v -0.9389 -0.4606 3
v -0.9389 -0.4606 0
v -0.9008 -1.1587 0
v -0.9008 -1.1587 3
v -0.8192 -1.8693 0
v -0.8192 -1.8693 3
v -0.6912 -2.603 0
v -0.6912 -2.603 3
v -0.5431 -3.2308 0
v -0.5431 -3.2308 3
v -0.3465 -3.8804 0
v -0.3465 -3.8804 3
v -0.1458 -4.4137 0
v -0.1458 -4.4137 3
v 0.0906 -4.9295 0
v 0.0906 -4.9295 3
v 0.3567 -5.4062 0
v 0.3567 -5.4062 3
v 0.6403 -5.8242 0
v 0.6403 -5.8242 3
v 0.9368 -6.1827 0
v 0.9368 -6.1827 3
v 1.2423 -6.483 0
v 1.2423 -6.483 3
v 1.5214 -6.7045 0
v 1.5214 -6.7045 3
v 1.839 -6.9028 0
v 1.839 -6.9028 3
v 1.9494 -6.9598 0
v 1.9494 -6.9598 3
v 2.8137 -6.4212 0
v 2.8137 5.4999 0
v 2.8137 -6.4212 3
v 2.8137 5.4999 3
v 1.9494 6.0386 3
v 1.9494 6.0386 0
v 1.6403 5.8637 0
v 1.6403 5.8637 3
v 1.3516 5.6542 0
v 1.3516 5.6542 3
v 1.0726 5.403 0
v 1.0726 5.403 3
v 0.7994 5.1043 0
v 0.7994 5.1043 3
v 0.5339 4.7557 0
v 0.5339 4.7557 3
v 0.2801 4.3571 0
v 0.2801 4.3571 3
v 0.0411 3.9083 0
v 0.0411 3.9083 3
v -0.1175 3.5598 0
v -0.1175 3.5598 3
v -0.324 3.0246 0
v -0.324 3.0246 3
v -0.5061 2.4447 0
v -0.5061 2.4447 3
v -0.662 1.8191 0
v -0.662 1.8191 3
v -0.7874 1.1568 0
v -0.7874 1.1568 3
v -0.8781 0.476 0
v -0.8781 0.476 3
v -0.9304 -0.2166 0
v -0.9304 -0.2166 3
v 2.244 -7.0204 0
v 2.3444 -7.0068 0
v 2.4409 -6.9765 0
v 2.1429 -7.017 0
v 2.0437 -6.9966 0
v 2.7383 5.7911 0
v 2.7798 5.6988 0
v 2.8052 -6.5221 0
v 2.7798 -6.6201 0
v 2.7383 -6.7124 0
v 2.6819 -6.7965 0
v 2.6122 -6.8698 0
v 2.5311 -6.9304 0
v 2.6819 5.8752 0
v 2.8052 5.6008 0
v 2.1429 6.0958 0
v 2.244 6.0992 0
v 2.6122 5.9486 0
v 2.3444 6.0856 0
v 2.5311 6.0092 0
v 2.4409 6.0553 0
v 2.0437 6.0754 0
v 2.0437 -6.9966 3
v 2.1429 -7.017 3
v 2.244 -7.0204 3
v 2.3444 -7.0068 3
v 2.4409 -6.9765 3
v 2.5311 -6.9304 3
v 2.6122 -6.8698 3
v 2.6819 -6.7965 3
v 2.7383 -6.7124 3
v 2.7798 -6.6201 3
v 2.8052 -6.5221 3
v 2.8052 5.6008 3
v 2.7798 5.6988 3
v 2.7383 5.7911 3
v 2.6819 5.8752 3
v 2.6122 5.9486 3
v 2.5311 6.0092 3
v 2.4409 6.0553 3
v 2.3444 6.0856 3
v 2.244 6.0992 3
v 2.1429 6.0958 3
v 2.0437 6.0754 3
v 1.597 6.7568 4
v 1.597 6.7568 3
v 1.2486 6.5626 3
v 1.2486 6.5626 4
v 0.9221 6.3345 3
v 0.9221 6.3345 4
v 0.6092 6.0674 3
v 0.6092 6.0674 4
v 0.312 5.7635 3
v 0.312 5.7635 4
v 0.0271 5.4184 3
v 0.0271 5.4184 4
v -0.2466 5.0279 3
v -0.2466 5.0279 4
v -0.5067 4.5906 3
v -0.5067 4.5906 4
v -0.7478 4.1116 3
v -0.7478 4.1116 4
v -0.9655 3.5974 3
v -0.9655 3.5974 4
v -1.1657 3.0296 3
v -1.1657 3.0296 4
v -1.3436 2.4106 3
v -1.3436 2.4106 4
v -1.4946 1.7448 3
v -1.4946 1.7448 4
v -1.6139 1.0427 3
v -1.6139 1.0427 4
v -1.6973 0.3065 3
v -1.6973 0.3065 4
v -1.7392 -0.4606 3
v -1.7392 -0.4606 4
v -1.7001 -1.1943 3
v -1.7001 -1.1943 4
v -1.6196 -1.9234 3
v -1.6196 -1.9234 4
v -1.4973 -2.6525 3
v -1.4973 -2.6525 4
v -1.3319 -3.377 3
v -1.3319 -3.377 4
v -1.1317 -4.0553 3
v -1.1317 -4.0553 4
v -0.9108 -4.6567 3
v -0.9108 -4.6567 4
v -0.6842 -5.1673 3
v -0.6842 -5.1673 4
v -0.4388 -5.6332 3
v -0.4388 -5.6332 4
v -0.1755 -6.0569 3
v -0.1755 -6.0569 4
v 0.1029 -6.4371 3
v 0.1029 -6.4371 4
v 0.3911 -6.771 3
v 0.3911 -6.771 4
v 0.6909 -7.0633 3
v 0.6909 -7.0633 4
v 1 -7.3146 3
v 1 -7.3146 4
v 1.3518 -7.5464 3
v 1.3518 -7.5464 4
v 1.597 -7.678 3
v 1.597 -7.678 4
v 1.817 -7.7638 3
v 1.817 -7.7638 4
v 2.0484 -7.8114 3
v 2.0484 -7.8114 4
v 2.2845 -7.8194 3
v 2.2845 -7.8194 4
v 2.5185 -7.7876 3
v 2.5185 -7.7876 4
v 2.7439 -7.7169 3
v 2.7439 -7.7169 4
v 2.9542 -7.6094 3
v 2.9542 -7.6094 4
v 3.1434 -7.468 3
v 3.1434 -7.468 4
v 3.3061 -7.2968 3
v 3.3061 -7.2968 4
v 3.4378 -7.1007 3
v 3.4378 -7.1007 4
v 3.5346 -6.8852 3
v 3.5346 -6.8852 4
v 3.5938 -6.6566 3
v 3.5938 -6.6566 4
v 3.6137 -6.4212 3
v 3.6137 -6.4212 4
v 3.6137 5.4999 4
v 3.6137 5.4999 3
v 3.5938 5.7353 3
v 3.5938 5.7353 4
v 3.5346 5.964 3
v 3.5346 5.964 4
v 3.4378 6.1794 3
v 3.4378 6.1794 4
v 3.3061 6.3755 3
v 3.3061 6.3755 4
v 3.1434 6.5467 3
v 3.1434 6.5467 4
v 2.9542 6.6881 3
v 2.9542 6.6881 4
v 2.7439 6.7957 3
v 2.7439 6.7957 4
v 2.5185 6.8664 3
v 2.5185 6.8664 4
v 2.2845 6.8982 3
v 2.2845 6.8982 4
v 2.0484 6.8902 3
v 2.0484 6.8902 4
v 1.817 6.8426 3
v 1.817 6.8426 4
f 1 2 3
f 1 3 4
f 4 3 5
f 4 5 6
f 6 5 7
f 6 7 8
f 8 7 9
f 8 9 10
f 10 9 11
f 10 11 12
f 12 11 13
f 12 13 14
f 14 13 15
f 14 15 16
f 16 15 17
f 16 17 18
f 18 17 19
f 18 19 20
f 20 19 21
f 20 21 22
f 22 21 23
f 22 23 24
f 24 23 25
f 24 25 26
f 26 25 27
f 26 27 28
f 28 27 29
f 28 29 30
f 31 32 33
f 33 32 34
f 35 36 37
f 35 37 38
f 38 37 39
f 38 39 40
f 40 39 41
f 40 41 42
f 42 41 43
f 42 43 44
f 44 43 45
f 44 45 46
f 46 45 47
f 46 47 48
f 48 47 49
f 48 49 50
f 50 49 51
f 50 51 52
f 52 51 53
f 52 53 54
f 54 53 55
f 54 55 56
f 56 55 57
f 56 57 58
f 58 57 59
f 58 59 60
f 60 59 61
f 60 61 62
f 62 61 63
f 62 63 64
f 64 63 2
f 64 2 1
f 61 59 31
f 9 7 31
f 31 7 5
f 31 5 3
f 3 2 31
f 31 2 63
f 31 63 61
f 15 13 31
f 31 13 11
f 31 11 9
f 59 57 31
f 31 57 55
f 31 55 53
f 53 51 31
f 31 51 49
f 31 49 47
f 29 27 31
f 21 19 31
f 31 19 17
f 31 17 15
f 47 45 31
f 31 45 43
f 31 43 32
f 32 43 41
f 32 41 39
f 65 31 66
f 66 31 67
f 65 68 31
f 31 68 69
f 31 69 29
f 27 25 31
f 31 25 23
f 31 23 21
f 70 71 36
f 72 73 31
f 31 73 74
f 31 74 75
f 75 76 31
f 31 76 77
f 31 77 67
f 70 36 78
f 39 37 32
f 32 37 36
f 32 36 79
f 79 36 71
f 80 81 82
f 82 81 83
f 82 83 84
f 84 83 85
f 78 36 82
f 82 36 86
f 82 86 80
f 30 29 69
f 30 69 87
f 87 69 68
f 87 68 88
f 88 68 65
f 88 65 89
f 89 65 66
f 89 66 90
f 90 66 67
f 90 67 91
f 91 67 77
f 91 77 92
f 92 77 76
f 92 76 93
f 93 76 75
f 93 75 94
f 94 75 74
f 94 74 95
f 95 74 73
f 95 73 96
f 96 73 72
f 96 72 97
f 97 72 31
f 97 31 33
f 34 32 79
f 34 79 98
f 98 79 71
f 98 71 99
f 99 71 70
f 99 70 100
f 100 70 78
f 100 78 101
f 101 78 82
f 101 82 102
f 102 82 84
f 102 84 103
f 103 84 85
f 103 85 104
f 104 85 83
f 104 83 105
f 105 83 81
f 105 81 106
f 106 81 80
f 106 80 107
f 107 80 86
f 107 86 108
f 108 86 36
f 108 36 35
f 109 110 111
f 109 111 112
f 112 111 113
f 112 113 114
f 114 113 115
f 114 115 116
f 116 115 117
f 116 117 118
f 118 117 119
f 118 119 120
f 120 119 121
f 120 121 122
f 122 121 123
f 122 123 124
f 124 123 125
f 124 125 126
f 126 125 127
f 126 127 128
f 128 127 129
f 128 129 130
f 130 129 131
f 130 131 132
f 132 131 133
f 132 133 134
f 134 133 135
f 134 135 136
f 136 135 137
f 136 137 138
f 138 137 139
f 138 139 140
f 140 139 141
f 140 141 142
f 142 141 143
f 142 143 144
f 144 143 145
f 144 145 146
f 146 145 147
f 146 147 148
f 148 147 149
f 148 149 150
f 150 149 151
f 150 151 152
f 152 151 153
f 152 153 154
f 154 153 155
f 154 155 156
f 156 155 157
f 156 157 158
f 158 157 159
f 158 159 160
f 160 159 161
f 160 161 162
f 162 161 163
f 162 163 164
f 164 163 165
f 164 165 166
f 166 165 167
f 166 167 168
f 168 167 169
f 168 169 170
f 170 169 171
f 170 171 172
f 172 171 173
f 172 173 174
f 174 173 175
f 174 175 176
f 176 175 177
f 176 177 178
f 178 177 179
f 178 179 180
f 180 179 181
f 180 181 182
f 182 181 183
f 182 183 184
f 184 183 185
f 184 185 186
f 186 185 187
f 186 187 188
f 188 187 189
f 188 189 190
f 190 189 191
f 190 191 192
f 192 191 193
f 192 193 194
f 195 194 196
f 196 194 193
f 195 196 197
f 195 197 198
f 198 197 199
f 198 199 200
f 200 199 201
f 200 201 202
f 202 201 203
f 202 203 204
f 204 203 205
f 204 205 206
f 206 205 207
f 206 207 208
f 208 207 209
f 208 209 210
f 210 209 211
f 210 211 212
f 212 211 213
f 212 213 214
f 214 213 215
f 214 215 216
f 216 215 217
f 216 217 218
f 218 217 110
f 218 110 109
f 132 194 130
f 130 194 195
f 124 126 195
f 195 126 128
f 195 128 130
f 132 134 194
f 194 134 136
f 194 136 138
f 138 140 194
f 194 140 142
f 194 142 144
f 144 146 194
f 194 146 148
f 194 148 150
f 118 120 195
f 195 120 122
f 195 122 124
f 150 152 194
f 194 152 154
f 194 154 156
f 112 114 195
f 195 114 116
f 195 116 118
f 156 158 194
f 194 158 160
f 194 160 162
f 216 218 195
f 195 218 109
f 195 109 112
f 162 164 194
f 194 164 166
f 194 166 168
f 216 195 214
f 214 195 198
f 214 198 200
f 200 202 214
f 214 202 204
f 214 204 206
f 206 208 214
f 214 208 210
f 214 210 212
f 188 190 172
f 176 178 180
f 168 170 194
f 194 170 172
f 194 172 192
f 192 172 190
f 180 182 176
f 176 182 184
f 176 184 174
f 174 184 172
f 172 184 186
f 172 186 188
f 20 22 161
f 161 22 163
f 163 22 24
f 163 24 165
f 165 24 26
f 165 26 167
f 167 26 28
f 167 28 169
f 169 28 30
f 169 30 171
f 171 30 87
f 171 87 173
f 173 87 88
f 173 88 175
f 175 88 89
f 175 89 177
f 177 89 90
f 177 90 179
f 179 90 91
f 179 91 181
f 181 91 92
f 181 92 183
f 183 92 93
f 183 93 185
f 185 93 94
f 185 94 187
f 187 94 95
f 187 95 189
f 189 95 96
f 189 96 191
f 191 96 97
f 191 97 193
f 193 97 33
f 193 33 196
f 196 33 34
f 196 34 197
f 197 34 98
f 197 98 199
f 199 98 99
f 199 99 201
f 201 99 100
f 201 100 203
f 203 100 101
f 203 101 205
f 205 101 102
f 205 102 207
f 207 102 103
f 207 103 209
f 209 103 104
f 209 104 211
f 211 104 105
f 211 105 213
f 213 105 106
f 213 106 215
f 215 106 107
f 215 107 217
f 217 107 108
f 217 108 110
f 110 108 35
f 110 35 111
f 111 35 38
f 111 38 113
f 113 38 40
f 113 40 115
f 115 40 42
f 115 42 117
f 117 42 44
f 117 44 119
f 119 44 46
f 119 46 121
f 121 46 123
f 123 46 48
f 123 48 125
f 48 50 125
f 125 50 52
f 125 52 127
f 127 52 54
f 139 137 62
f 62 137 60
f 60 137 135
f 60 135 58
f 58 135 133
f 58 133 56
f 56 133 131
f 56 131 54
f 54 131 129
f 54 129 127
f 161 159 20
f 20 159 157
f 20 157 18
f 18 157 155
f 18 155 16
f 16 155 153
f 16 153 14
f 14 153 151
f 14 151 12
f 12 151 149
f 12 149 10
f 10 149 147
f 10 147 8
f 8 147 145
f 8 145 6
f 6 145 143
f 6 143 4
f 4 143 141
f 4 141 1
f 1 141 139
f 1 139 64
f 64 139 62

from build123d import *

# Parameters (mm, degrees)
BOSS_EXTRUDE1_DEPTH = 3
FILLET1_R           = 0.6
BOSS_EXTRUDE2_DEPTH = 1


with BuildPart() as part:
    # Sketch1 → Boss-Extrude1 (new body)
    with BuildSketch(Plane.XY):
        with BuildLine():
            Line((2.813726101, -7.233722886), (2.813726101, 6.312465104))
            add(Edge.make_bspline(
                [(2.813726101, 6.312465104), (2.504718004, 6.264404648), (1.893497156, 6.064800789), (0.890081325, 5.34240891), (-0.080852226, 3.898834313), (-0.647319625, 2.07334315), (-0.882193889, 0.581865897), (-0.93021587, -0.107691535), (-0.938912211, -0.460628891)],
                knots=[0.032675075, 0.032675075, 0.032675075, 0.032675075, 0.153501113, 0.274327151, 0.515979228, 0.757631304, 0.878457343, 0.999283381, 0.999283381, 0.999283381, 0.999283381], degree=3))
            add(Edge.make_bspline(
                [(-0.938912211, -0.460628891), (-0.93021587, -0.813566247), (-0.882193889, -1.503123679), (-0.647319625, -2.994600932), (-0.080852226, -4.820092095), (0.890081325, -6.263666692), (1.893497156, -6.986058571), (2.504718004, -7.18566243), (2.813726101, -7.233722886)],
                knots=[0.032675075, 0.032675075, 0.032675075, 0.032675075, 0.153501113, 0.274327151, 0.515979228, 0.757631304, 0.878457343, 0.999283381, 0.999283381, 0.999283381, 0.999283381], degree=3))
        make_face()
    extrude(amount=BOSS_EXTRUDE1_DEPTH)

    # Fillet1
    fillet1_edges = [part.edges().sort_by_distance(p)[0] for p in [
        (2.813726101, -7.233722886, 1.5),
        (2.813726101, 6.312465104, 1.5),
    ]]
    fillet(fillet1_edges, radius=FILLET1_R)

    # Sketch3 → Boss-Extrude2 (add)
    with BuildSketch(Plane.XY.offset(3)):
        with BuildLine():
            Line((3.613726101, -6.42120663), (3.613726101, 5.499948848))
            ThreePointArc((3.613726101, 5.499948848), (2.954184531, 6.688107639), (1.596981367, 6.756780552))
            add(Edge.make_bspline(
                [(1.596981367, 6.756780552), (1.282061762, 6.602245138), (0.994843741, 6.407135645), (0.467503364, 5.947936377), (0.233787218, 5.690400118), (-0.184066224, 5.140618178), (-0.370152574, 4.845270148), (-0.699300989, 4.232833375), (-0.841194277, 3.918340305), (-1.089857286, 3.276540027), (-1.196610753, 2.94922689), (-1.38071085, 2.283872115), (-1.458163179, 1.944713712), (-1.648747035, 0.922143409), (-1.722037558, 0.234076304), (-1.739155024, -0.460628891)],
                knots=[0, 0, 0, 0, 0.125, 0.125, 0.25, 0.25, 0.375, 0.375, 0.5, 0.5, 0.625, 0.625, 0.75, 0.75, 1, 1, 1, 1], degree=3))
            add(Edge.make_bspline(
                [(-1.739155024, -0.460628891), (-1.722036272, -1.15538629), (-1.648742974, -1.84324583), (-1.458332057, -2.865153843), (-1.380793827, -3.204774963), (-1.196784843, -3.869910467), (-0.98366247, -4.523264457), (-0.70170709, -5.148763327), (-0.375964944, -5.756542709), (-0.189209114, -6.054473312), (0.231167863, -6.608835903), (0.46405952, -6.865638613), (0.858736471, -7.210145529), (0.998171212, -7.317980735), (1.288068017, -7.512889958), (1.439226487, -7.600625828), (1.596981367, -7.678038334)],
                knots=[0, 0, 0, 0, 0.25, 0.25, 0.375, 0.375, 0.5, 0.625, 0.625, 0.75, 0.75, 0.875, 0.875, 0.9375, 0.9375, 1, 1, 1, 1], degree=3))
            ThreePointArc((1.596981367, -7.678038334), (2.954184531, -7.609365421), (3.613726101, -6.42120663))
        make_face()
    extrude(amount=BOSS_EXTRUDE2_DEPTH)


solid = part.part
